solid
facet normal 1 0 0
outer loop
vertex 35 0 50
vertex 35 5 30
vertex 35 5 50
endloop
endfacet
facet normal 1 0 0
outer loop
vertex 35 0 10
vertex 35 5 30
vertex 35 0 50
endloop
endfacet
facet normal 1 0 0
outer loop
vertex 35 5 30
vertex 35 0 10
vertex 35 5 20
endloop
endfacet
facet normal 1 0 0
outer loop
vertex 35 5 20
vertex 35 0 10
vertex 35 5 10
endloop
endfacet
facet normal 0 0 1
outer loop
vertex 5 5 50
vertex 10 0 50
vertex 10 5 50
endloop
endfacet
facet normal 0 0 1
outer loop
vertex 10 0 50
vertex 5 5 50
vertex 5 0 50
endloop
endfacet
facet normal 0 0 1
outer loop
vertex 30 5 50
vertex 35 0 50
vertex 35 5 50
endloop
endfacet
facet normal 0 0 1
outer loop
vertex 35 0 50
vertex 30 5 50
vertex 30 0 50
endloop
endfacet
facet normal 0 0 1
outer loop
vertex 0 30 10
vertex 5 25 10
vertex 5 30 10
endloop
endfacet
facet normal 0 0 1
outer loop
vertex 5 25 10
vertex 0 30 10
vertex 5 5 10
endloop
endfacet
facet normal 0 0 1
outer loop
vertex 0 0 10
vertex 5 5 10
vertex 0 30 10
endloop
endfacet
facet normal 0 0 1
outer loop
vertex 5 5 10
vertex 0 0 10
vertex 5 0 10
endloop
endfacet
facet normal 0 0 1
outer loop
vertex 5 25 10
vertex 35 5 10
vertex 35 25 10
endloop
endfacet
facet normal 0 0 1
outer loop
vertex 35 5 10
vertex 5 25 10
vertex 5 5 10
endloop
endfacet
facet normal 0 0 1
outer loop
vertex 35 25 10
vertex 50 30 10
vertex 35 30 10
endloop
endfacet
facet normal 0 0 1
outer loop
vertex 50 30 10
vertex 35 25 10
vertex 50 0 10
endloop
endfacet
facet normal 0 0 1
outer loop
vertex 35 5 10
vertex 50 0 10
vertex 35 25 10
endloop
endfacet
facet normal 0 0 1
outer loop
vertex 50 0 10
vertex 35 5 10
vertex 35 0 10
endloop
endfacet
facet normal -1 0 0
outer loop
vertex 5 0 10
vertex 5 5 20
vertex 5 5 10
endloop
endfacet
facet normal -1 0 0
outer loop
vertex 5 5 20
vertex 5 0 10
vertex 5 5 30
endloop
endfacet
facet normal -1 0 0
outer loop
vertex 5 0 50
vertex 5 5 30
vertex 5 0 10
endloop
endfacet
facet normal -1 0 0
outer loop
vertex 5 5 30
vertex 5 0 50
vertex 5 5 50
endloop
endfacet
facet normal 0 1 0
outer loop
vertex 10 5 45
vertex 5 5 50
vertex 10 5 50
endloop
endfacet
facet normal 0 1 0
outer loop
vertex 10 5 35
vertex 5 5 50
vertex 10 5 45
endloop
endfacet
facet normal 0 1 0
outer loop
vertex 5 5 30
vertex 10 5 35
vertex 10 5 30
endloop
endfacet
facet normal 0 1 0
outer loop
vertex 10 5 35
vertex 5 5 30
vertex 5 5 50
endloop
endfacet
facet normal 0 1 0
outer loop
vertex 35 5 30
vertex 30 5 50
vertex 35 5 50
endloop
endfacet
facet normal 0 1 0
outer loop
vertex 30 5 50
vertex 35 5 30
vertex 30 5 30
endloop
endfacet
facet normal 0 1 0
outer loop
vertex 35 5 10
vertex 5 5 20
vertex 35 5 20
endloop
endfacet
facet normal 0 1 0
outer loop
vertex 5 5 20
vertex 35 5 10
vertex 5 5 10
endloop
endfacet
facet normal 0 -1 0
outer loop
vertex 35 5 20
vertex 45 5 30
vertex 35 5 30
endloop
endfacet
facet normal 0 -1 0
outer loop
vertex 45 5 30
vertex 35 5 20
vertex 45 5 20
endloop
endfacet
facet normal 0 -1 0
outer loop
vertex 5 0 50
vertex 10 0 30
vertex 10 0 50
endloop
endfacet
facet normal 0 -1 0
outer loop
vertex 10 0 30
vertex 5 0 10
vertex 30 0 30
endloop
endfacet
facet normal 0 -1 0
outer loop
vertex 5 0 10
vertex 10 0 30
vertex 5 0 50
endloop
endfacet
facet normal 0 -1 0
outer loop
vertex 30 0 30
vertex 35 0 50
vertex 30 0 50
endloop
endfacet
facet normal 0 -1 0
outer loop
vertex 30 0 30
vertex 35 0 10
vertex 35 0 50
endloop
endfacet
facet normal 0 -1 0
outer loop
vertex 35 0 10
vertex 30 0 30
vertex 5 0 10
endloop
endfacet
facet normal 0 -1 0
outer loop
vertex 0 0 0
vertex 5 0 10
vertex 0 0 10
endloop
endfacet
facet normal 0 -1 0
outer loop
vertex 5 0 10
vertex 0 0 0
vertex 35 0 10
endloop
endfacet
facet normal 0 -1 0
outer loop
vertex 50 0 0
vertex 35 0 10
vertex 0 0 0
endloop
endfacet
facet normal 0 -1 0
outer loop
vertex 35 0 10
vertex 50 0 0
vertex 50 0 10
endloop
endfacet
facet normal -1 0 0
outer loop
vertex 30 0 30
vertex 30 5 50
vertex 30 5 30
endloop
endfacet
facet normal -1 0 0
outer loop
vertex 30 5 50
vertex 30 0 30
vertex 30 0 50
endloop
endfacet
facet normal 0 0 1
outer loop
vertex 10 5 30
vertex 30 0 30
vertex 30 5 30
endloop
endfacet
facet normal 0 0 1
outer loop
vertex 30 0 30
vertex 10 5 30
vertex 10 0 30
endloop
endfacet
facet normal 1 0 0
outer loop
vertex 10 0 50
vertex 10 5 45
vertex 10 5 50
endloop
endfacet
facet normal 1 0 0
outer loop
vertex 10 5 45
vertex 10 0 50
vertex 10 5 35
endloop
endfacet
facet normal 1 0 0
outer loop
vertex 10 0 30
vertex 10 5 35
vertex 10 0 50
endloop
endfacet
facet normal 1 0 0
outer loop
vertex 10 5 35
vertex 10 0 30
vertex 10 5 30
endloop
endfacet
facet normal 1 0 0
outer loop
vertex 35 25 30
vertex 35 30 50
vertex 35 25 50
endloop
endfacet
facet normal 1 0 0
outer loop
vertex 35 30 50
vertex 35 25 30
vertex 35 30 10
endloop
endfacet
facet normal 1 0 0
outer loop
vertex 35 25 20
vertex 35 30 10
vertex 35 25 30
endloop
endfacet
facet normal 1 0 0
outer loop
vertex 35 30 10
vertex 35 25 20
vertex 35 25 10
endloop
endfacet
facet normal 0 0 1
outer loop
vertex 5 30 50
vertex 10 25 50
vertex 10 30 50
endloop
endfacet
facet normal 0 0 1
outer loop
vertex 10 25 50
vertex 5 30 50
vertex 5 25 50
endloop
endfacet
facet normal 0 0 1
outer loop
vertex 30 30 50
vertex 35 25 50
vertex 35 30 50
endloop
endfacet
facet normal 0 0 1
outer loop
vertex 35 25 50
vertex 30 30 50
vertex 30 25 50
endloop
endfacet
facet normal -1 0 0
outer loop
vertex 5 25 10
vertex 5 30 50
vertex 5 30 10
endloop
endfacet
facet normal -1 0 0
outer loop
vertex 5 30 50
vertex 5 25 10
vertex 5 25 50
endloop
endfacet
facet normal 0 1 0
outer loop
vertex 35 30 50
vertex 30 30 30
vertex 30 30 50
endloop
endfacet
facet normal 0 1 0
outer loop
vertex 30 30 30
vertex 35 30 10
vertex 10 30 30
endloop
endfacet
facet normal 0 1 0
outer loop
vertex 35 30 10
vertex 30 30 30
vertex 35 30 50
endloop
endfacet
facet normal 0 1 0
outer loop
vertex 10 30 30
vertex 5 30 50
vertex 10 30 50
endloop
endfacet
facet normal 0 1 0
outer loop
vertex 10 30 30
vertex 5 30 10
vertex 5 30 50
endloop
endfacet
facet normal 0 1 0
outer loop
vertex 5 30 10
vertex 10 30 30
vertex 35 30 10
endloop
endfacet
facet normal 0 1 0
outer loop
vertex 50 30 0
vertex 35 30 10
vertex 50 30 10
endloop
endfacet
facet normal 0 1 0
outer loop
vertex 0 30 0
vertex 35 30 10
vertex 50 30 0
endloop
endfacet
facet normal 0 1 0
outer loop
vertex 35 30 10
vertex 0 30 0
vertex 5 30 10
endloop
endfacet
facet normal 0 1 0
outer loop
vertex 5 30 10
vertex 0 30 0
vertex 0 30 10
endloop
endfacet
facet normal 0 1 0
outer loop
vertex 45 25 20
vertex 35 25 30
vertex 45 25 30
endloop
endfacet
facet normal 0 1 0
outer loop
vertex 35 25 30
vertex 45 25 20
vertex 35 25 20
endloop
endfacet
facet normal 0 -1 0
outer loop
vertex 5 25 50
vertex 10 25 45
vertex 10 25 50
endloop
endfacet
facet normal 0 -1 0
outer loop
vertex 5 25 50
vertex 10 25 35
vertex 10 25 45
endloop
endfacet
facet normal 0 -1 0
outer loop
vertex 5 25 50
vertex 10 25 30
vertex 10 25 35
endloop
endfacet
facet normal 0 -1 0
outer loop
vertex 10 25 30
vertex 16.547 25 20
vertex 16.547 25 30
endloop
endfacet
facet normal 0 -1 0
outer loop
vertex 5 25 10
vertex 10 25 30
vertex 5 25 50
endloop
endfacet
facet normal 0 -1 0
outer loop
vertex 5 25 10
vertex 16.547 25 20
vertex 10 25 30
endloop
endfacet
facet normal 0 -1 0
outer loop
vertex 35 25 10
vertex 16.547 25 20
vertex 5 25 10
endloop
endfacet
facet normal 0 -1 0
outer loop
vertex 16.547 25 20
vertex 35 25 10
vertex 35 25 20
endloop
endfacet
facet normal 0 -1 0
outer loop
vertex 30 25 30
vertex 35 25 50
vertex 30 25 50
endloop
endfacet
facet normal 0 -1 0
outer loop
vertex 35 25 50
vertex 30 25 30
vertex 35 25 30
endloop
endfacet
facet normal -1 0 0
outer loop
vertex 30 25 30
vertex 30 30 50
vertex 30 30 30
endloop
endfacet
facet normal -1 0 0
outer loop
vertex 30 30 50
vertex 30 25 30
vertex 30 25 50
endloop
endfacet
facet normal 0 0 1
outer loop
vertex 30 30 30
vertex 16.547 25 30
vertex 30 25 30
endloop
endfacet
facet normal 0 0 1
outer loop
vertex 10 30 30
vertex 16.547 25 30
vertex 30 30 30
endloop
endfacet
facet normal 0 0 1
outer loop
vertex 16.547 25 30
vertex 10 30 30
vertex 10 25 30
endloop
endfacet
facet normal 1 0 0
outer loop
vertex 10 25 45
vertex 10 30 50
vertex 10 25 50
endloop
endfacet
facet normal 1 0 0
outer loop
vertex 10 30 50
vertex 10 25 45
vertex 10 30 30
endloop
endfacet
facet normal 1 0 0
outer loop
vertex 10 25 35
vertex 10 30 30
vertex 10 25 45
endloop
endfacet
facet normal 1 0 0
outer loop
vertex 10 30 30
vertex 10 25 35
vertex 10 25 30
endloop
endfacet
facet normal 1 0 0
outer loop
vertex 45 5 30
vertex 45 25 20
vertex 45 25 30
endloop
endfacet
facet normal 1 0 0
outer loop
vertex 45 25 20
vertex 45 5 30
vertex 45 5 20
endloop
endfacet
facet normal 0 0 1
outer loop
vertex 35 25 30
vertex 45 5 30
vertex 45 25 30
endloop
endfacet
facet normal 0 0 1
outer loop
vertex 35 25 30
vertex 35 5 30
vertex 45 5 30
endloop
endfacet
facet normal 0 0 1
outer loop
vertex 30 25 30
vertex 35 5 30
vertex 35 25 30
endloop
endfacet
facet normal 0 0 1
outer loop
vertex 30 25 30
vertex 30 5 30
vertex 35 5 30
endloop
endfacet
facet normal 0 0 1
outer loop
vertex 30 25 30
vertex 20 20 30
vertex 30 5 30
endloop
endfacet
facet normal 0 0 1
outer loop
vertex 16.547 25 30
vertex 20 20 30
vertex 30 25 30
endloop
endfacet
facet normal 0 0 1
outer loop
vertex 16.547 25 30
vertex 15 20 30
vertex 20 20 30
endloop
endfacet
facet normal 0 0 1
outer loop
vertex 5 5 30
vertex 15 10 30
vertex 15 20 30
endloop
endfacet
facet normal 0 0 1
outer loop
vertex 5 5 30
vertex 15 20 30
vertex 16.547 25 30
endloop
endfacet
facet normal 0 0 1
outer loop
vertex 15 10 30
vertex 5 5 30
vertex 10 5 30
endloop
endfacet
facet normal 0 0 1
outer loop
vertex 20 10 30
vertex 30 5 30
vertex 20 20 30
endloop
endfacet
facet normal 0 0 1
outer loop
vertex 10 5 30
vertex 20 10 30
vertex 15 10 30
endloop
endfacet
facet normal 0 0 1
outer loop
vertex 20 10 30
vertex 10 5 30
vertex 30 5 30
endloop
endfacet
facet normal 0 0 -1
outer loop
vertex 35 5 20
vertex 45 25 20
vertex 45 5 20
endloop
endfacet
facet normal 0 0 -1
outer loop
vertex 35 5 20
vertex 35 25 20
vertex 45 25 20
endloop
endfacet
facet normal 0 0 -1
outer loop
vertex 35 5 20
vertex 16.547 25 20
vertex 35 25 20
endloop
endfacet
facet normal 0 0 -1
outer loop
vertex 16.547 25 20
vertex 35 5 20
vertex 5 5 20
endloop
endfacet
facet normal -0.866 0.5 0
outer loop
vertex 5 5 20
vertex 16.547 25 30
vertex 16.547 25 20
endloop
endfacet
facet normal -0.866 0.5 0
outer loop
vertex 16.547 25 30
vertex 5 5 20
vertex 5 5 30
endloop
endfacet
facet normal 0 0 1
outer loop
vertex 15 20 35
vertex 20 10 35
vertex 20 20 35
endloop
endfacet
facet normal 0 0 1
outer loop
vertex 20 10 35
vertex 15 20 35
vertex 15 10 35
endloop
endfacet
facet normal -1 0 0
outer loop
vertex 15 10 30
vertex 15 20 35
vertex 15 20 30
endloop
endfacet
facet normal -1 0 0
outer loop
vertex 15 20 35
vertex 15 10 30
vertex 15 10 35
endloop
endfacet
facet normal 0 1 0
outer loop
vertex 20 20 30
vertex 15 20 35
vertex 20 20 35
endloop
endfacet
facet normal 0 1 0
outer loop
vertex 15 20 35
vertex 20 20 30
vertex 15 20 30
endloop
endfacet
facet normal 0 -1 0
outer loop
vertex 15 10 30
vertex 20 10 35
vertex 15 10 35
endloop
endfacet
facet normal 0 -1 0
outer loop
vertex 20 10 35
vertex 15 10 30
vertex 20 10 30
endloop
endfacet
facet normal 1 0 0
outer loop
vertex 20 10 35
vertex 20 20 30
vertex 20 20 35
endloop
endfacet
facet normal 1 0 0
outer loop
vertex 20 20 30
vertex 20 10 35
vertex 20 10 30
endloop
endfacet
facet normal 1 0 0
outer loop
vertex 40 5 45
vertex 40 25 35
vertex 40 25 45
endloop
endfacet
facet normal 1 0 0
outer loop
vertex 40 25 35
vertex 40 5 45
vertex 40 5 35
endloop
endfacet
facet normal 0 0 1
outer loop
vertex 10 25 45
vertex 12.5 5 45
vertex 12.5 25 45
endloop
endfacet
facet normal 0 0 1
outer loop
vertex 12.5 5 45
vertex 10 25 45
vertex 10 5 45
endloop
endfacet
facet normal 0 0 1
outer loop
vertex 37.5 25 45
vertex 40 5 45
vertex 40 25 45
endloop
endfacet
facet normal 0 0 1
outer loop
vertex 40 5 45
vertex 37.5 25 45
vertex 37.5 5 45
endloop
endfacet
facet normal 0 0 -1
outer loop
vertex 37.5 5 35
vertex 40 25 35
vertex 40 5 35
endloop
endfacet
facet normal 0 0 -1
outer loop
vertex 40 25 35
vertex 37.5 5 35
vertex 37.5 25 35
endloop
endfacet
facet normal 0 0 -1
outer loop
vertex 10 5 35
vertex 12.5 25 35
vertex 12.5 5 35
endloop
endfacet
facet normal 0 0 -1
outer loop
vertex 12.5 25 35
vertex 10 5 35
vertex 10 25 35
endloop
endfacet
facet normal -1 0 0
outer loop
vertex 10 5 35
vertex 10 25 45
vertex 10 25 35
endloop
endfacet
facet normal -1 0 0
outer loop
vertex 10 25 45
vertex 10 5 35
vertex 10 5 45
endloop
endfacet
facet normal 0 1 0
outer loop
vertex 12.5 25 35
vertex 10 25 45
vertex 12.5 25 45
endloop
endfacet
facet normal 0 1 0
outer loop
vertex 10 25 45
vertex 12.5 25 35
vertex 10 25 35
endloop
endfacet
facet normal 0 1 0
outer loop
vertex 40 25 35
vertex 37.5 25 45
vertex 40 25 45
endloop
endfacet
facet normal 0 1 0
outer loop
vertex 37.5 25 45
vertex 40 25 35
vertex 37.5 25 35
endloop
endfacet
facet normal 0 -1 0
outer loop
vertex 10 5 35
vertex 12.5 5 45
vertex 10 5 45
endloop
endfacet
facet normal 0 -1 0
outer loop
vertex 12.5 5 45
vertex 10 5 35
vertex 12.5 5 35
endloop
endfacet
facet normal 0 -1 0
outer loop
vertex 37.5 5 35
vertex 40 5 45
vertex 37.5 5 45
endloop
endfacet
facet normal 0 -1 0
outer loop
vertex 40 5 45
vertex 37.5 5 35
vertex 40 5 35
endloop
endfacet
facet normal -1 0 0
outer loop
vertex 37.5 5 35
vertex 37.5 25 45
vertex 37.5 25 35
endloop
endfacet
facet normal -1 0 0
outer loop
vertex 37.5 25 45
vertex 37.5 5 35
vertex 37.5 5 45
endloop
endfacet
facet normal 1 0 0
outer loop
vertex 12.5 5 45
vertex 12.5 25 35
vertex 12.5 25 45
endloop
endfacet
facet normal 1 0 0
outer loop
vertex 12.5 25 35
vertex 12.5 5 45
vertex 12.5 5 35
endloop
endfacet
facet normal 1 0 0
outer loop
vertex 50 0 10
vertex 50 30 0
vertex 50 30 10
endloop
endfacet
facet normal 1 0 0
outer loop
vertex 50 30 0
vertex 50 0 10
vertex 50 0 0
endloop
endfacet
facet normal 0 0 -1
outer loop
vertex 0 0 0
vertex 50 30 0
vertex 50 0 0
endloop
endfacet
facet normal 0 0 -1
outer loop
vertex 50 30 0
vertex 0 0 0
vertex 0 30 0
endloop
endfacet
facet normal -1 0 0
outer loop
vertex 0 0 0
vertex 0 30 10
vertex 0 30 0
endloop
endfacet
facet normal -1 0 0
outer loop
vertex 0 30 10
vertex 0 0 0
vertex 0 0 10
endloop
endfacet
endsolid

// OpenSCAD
// Base Block
module base_block() {
    cube([50, 30, 10]); // Main block with flattened top surface
}

// Side Plate
module side_plate() {
    difference() {
        cube([30, 5, 40]); // Main plate
        translate([5, 0, 20]) cube([20, 5, 20]); // Adjusted cutout for more defined L-shape
    }
}

// Connector Block
module connector_block() {
    difference() {
        cube([30, 20, 10]); // Main block
        translate([2.5, 0, 0]) cube([25, 20, 10]); // Widened U-shaped cutout
    }
}

// Support Block
module support_block() {
    difference() {
        cube([40, 20, 10]); // Main block
        translate([0, 0, 0]) rotate([0, 0, 60]) cube([30, 30, 10]); // Deepened slanted cut for sharper angled profile
    }
}

// Spacer Block
module spacer_block() {
    difference() {
        cube([20, 10, 5]); // Main block
        translate([5, 0, 0]) cube([15, 10, 5]); // Enlarged notch for more distinct stepped appearance
    }
}

// Assembly
module assembly() {
    // Layer 5: Base Block
    translate([0, 0, 0]) base_block();

    // Layer 4: Side Plates
    translate([5, 0, 10]) side_plate();
    translate([5, 25, 10]) side_plate();

    // Layer 3: Support Block
    translate([5, 5, 20]) support_block();

    // Layer 2: Spacer Block
    translate([15, 10, 30]) spacer_block();

    // Layer 1: Connector Block
    translate([10, 5, 35]) connector_block();
}

// Render the assembly
assembly();
